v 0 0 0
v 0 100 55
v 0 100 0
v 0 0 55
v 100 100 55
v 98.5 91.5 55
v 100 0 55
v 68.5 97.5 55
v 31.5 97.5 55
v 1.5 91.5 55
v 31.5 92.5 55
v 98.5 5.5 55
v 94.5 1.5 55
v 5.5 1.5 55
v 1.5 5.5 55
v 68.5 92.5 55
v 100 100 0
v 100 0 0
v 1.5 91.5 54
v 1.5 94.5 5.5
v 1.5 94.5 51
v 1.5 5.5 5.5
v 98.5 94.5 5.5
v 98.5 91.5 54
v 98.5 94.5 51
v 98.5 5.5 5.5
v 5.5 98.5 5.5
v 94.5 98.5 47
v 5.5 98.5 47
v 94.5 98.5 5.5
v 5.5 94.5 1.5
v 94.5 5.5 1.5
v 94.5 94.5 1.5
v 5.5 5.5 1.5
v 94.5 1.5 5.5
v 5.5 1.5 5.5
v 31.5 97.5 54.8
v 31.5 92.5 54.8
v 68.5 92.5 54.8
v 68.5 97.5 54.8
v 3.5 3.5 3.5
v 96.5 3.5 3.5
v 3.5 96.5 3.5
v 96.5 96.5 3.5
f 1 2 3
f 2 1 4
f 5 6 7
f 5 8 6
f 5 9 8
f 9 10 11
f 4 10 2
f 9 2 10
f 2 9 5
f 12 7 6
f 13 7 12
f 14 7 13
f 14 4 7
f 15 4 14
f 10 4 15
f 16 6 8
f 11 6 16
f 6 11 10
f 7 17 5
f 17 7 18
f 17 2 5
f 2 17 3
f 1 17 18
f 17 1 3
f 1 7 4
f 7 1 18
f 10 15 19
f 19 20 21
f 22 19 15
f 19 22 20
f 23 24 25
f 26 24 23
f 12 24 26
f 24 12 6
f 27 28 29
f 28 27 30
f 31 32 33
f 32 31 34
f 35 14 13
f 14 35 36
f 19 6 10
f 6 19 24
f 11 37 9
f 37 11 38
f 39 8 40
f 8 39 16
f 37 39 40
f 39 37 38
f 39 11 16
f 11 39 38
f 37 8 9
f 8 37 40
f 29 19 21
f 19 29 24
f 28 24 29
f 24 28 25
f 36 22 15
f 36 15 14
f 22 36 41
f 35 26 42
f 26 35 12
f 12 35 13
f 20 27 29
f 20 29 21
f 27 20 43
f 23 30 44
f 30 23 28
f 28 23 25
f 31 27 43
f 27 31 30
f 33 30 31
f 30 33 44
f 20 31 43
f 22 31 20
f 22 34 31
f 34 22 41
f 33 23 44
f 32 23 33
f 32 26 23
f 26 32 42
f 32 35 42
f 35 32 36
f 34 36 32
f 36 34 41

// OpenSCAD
$fn=400;

box_sidewall_thickness=1.5;
box_ground_thickness=1.5;
box_outer_size_width=100;
box_outer_size_depth=100;
box_outer_height=55;
box_label_width=37;
box_label_height=5;
box_corner_support_size=4;

module corner_support(width, height) {
    
    label_frame=3;

    union() {

        // Create the support structure
        difference() {
            cube([width,height,height]);
            
            // Calculate the cube size for the difference by using the 
            // pythagorean theorem "Square root of a² and b²"
            tmp=sqrt((height)^2 + (height)^2);
            color("red") 
            rotate([45,0,0])
            translate([-1, 0, -tmp/2])
            cube([width+2, tmp/2, tmp]);   
        }
    }
}

module label(plate_width, plate_height, label_width, label_height, label_thickness, pos_x, pos_y, pos_z) {
    plate_thickness = 1;

    union() {
        difference() {
            // Draw a plate that is a bit larger than the label on each side
            color("blue")
            translate([pos_x, pos_y, pos_z])
            cube([plate_width, plate_height, plate_thickness]);
            // Draw a sink for the paper label
            color("green")
            translate([
                    pos_x + (plate_width - label_width)/2,
                    pos_y + (plate_height - label_height)/2,
                    pos_z + plate_thickness - label_thickness])
            cube([label_width, label_height, label_thickness+1]);
        }
        
        translate([pos_x,pos_y,pos_z - plate_height])
        corner_support(plate_width, plate_height);
    }
}

union() {
    // Create the box by differencing one cube with another one
    difference() {
        cube([box_outer_size_width, box_outer_size_depth, box_outer_height]);
        translate([box_sidewall_thickness, box_sidewall_thickness, box_ground_thickness])
        cube([box_outer_size_width - box_sidewall_thickness*2, box_outer_size_depth - box_sidewall_thickness*2,box_outer_height]);
    }

    // Add the label compoent
    label(
            box_outer_size_width - box_sidewall_thickness*2,                      // plate_width
            box_label_height+2,                                                   // plate_height (The paper label + 2mm). This will also be the height of the support structure. 
            box_label_width,                                                      // label_width
            box_label_height,                                                     // label_height
            0.2,                                                                  // label_thickness
            box_sidewall_thickness,                                               // pos_x
            box_outer_size_depth - box_label_height - 2 - box_sidewall_thickness, // pos_y
            box_outer_height - 1                                                  // pos_z
    );
    
    // Add the support structure in left bottom corner
    color("blue")
    translate([box_corner_support_size + box_sidewall_thickness,
                box_corner_support_size + box_sidewall_thickness,
                box_outer_height])
    rotate([180,90,0])
    corner_support(box_outer_height - box_ground_thickness,box_corner_support_size);
    
    // Add the support structure in right bottom corner
    color("blue")
    translate([box_outer_size_width - box_corner_support_size - box_sidewall_thickness,
                box_corner_support_size + box_sidewall_thickness,
                box_outer_height])
    rotate([90,90,0])
    corner_support(box_outer_height - box_ground_thickness,box_corner_support_size);
    
    // Add the support structure in left upper corner
    color("blue")
    translate([box_corner_support_size + box_sidewall_thickness,
                box_outer_size_depth - box_corner_support_size - box_sidewall_thickness,
                box_outer_height])
    rotate([270,90,0])
    corner_support(box_outer_height - box_ground_thickness,box_corner_support_size);
    
    // Add the support structure in right upper corner
    color("blue")
    translate([box_outer_size_width - box_corner_support_size - box_sidewall_thickness,
                box_outer_size_depth - box_corner_support_size - box_sidewall_thickness,
                box_outer_height])
    rotate([0,90,0])
    corner_support(box_outer_height - box_ground_thickness,box_corner_support_size);
    
    // Add the support structure at the ground (top)
    color("grey")
    translate([box_sidewall_thickness,
                box_outer_size_depth - box_corner_support_size - box_sidewall_thickness,
                box_corner_support_size + box_ground_thickness])
    mirror([0,0,1])
    corner_support(box_outer_size_width - box_sidewall_thickness*2,box_corner_support_size);
    
    // Add the support structure at the ground (left)
    color("grey")
    translate([box_corner_support_size + box_sidewall_thickness,
                0,
                box_corner_support_size + box_ground_thickness])
    rotate([0,0,90]) 
    mirror([0,0,1])
    corner_support(box_outer_size_depth - box_sidewall_thickness*2,box_corner_support_size);

    // Add the support structure at the ground (right)
    color("grey")
    translate([box_outer_size_width - box_corner_support_size - box_sidewall_thickness,
                + box_outer_size_depth,
                box_corner_support_size + box_ground_thickness])
    rotate([0,0,270]) 
    mirror([0,0,1])
    corner_support(box_outer_size_depth - box_sidewall_thickness*2,box_corner_support_size);

    // Add the support structure at the ground (bottom)
    color("grey")
    translate([box_outer_size_width,
                box_corner_support_size + box_sidewall_thickness,
                box_corner_support_size + box_ground_thickness])
    rotate([0,0,180]) 
    mirror([0,0,1])
    corner_support(box_outer_size_width - box_sidewall_thickness*2,box_corner_support_size);
}
